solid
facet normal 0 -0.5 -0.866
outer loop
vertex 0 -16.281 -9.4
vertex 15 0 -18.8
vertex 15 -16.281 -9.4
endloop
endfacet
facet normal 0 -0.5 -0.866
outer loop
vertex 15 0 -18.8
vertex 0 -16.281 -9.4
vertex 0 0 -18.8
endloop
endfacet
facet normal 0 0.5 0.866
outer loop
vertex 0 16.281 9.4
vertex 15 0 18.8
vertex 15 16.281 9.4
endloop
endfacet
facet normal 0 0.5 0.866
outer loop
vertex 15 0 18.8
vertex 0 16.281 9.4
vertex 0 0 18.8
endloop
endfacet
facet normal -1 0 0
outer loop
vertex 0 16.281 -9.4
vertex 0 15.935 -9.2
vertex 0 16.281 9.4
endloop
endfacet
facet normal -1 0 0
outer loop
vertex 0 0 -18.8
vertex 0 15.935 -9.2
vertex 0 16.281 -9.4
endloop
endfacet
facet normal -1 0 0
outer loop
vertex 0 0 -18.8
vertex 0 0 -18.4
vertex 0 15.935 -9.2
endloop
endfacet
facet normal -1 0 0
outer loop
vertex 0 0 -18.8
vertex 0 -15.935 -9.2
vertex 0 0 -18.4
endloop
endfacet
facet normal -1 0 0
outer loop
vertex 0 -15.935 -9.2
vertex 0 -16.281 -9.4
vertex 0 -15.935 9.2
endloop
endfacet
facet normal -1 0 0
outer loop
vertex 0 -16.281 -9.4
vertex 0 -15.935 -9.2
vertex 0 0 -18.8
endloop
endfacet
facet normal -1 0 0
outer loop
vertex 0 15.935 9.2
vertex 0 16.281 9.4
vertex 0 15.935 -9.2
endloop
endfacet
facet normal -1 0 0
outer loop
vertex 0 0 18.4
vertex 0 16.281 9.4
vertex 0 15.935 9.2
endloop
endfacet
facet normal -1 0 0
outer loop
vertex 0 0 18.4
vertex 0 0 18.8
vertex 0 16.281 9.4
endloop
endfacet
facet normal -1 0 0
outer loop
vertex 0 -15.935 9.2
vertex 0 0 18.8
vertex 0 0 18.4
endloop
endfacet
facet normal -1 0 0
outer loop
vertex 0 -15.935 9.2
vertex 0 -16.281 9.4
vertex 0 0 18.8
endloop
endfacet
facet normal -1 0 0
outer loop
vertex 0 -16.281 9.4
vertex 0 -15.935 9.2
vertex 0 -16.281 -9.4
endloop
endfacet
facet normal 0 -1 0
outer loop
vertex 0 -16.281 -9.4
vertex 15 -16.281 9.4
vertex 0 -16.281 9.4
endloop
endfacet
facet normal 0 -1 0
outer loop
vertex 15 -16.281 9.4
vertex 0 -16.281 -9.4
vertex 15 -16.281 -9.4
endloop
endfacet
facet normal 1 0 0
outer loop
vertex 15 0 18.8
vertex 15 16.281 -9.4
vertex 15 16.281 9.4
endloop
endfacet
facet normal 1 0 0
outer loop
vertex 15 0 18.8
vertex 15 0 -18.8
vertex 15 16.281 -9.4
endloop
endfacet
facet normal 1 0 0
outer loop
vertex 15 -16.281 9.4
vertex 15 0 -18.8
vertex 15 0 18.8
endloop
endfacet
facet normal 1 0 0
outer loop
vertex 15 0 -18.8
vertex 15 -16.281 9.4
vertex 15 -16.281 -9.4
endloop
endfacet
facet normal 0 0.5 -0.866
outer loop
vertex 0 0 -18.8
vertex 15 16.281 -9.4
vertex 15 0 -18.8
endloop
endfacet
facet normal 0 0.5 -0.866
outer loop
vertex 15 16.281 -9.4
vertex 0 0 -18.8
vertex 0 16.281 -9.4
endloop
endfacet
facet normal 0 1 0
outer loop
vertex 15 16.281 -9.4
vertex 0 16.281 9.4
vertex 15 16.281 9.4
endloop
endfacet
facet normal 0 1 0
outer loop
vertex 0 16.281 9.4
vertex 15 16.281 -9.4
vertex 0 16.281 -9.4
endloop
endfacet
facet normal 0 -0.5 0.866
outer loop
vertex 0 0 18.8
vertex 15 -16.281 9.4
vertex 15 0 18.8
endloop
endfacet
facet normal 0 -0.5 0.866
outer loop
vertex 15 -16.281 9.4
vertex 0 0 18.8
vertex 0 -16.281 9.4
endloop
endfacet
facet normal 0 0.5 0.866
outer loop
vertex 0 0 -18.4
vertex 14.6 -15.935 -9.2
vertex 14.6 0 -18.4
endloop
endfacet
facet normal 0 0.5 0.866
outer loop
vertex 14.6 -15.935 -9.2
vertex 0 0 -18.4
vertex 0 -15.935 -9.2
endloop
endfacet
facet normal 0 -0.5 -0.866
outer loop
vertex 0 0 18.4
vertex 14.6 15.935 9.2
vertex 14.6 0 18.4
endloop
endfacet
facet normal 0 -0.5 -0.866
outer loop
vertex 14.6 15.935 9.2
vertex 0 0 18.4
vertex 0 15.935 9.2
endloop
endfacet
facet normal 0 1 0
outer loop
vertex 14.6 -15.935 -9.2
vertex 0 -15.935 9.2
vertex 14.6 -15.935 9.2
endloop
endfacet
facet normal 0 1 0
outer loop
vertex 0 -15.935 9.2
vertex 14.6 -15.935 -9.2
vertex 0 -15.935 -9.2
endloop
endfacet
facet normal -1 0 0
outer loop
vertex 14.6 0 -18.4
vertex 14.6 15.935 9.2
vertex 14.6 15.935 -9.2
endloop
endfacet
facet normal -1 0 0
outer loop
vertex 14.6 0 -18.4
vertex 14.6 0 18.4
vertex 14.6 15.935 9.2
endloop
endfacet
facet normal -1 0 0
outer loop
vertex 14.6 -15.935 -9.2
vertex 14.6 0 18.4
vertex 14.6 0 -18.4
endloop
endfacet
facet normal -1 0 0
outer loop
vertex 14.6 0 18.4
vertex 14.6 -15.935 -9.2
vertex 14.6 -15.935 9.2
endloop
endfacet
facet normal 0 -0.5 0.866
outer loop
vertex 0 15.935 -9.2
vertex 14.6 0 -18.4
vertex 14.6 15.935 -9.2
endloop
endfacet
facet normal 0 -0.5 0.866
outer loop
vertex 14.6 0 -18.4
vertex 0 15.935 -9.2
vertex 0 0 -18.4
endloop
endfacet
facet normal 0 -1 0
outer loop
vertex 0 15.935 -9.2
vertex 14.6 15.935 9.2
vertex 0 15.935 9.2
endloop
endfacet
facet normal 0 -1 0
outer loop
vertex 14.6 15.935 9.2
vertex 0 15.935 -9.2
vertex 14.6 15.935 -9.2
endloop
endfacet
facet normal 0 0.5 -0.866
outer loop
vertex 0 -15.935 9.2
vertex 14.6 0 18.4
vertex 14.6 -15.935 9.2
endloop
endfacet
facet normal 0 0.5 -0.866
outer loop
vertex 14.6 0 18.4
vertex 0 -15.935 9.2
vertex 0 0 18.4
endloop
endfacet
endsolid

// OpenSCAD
$fn=200;

length = 75;
width= 20;
height = 45;

wall=4;

hole_offset_left=33;
hole_offset_height=10;
box_width=2;

// Radius pipe with leds
ir1=16.8/2;
// Height for initial increase
ih1=30;
// Height to keep stable until end of leds
ih2=40;
// Hole radius to be cut later by manual tools
hr1=0.5;

// Position for microcontroller housing
mcr=22.4/2;

// Length for microcontroller hole
mch=60+5;

// Battery radius
br=18.8;
// Battery height
bh=15;

dist=33;

for ( i = [0 : 0] ){
    for ( j = [0 : 0] ){
        translate([0,i*dist+(dist/2*(j%2)),j*28.6]){
            difference() {
                translate([0,0,0]) rotate([0,90,0]) cylinder(r=br,h=bh, $fn=6);
                translate([-0.4,0,0]) rotate([0,90,0]) cylinder(r=br-0.4,h=bh, $fn=6);
            }
        }
    }
}
